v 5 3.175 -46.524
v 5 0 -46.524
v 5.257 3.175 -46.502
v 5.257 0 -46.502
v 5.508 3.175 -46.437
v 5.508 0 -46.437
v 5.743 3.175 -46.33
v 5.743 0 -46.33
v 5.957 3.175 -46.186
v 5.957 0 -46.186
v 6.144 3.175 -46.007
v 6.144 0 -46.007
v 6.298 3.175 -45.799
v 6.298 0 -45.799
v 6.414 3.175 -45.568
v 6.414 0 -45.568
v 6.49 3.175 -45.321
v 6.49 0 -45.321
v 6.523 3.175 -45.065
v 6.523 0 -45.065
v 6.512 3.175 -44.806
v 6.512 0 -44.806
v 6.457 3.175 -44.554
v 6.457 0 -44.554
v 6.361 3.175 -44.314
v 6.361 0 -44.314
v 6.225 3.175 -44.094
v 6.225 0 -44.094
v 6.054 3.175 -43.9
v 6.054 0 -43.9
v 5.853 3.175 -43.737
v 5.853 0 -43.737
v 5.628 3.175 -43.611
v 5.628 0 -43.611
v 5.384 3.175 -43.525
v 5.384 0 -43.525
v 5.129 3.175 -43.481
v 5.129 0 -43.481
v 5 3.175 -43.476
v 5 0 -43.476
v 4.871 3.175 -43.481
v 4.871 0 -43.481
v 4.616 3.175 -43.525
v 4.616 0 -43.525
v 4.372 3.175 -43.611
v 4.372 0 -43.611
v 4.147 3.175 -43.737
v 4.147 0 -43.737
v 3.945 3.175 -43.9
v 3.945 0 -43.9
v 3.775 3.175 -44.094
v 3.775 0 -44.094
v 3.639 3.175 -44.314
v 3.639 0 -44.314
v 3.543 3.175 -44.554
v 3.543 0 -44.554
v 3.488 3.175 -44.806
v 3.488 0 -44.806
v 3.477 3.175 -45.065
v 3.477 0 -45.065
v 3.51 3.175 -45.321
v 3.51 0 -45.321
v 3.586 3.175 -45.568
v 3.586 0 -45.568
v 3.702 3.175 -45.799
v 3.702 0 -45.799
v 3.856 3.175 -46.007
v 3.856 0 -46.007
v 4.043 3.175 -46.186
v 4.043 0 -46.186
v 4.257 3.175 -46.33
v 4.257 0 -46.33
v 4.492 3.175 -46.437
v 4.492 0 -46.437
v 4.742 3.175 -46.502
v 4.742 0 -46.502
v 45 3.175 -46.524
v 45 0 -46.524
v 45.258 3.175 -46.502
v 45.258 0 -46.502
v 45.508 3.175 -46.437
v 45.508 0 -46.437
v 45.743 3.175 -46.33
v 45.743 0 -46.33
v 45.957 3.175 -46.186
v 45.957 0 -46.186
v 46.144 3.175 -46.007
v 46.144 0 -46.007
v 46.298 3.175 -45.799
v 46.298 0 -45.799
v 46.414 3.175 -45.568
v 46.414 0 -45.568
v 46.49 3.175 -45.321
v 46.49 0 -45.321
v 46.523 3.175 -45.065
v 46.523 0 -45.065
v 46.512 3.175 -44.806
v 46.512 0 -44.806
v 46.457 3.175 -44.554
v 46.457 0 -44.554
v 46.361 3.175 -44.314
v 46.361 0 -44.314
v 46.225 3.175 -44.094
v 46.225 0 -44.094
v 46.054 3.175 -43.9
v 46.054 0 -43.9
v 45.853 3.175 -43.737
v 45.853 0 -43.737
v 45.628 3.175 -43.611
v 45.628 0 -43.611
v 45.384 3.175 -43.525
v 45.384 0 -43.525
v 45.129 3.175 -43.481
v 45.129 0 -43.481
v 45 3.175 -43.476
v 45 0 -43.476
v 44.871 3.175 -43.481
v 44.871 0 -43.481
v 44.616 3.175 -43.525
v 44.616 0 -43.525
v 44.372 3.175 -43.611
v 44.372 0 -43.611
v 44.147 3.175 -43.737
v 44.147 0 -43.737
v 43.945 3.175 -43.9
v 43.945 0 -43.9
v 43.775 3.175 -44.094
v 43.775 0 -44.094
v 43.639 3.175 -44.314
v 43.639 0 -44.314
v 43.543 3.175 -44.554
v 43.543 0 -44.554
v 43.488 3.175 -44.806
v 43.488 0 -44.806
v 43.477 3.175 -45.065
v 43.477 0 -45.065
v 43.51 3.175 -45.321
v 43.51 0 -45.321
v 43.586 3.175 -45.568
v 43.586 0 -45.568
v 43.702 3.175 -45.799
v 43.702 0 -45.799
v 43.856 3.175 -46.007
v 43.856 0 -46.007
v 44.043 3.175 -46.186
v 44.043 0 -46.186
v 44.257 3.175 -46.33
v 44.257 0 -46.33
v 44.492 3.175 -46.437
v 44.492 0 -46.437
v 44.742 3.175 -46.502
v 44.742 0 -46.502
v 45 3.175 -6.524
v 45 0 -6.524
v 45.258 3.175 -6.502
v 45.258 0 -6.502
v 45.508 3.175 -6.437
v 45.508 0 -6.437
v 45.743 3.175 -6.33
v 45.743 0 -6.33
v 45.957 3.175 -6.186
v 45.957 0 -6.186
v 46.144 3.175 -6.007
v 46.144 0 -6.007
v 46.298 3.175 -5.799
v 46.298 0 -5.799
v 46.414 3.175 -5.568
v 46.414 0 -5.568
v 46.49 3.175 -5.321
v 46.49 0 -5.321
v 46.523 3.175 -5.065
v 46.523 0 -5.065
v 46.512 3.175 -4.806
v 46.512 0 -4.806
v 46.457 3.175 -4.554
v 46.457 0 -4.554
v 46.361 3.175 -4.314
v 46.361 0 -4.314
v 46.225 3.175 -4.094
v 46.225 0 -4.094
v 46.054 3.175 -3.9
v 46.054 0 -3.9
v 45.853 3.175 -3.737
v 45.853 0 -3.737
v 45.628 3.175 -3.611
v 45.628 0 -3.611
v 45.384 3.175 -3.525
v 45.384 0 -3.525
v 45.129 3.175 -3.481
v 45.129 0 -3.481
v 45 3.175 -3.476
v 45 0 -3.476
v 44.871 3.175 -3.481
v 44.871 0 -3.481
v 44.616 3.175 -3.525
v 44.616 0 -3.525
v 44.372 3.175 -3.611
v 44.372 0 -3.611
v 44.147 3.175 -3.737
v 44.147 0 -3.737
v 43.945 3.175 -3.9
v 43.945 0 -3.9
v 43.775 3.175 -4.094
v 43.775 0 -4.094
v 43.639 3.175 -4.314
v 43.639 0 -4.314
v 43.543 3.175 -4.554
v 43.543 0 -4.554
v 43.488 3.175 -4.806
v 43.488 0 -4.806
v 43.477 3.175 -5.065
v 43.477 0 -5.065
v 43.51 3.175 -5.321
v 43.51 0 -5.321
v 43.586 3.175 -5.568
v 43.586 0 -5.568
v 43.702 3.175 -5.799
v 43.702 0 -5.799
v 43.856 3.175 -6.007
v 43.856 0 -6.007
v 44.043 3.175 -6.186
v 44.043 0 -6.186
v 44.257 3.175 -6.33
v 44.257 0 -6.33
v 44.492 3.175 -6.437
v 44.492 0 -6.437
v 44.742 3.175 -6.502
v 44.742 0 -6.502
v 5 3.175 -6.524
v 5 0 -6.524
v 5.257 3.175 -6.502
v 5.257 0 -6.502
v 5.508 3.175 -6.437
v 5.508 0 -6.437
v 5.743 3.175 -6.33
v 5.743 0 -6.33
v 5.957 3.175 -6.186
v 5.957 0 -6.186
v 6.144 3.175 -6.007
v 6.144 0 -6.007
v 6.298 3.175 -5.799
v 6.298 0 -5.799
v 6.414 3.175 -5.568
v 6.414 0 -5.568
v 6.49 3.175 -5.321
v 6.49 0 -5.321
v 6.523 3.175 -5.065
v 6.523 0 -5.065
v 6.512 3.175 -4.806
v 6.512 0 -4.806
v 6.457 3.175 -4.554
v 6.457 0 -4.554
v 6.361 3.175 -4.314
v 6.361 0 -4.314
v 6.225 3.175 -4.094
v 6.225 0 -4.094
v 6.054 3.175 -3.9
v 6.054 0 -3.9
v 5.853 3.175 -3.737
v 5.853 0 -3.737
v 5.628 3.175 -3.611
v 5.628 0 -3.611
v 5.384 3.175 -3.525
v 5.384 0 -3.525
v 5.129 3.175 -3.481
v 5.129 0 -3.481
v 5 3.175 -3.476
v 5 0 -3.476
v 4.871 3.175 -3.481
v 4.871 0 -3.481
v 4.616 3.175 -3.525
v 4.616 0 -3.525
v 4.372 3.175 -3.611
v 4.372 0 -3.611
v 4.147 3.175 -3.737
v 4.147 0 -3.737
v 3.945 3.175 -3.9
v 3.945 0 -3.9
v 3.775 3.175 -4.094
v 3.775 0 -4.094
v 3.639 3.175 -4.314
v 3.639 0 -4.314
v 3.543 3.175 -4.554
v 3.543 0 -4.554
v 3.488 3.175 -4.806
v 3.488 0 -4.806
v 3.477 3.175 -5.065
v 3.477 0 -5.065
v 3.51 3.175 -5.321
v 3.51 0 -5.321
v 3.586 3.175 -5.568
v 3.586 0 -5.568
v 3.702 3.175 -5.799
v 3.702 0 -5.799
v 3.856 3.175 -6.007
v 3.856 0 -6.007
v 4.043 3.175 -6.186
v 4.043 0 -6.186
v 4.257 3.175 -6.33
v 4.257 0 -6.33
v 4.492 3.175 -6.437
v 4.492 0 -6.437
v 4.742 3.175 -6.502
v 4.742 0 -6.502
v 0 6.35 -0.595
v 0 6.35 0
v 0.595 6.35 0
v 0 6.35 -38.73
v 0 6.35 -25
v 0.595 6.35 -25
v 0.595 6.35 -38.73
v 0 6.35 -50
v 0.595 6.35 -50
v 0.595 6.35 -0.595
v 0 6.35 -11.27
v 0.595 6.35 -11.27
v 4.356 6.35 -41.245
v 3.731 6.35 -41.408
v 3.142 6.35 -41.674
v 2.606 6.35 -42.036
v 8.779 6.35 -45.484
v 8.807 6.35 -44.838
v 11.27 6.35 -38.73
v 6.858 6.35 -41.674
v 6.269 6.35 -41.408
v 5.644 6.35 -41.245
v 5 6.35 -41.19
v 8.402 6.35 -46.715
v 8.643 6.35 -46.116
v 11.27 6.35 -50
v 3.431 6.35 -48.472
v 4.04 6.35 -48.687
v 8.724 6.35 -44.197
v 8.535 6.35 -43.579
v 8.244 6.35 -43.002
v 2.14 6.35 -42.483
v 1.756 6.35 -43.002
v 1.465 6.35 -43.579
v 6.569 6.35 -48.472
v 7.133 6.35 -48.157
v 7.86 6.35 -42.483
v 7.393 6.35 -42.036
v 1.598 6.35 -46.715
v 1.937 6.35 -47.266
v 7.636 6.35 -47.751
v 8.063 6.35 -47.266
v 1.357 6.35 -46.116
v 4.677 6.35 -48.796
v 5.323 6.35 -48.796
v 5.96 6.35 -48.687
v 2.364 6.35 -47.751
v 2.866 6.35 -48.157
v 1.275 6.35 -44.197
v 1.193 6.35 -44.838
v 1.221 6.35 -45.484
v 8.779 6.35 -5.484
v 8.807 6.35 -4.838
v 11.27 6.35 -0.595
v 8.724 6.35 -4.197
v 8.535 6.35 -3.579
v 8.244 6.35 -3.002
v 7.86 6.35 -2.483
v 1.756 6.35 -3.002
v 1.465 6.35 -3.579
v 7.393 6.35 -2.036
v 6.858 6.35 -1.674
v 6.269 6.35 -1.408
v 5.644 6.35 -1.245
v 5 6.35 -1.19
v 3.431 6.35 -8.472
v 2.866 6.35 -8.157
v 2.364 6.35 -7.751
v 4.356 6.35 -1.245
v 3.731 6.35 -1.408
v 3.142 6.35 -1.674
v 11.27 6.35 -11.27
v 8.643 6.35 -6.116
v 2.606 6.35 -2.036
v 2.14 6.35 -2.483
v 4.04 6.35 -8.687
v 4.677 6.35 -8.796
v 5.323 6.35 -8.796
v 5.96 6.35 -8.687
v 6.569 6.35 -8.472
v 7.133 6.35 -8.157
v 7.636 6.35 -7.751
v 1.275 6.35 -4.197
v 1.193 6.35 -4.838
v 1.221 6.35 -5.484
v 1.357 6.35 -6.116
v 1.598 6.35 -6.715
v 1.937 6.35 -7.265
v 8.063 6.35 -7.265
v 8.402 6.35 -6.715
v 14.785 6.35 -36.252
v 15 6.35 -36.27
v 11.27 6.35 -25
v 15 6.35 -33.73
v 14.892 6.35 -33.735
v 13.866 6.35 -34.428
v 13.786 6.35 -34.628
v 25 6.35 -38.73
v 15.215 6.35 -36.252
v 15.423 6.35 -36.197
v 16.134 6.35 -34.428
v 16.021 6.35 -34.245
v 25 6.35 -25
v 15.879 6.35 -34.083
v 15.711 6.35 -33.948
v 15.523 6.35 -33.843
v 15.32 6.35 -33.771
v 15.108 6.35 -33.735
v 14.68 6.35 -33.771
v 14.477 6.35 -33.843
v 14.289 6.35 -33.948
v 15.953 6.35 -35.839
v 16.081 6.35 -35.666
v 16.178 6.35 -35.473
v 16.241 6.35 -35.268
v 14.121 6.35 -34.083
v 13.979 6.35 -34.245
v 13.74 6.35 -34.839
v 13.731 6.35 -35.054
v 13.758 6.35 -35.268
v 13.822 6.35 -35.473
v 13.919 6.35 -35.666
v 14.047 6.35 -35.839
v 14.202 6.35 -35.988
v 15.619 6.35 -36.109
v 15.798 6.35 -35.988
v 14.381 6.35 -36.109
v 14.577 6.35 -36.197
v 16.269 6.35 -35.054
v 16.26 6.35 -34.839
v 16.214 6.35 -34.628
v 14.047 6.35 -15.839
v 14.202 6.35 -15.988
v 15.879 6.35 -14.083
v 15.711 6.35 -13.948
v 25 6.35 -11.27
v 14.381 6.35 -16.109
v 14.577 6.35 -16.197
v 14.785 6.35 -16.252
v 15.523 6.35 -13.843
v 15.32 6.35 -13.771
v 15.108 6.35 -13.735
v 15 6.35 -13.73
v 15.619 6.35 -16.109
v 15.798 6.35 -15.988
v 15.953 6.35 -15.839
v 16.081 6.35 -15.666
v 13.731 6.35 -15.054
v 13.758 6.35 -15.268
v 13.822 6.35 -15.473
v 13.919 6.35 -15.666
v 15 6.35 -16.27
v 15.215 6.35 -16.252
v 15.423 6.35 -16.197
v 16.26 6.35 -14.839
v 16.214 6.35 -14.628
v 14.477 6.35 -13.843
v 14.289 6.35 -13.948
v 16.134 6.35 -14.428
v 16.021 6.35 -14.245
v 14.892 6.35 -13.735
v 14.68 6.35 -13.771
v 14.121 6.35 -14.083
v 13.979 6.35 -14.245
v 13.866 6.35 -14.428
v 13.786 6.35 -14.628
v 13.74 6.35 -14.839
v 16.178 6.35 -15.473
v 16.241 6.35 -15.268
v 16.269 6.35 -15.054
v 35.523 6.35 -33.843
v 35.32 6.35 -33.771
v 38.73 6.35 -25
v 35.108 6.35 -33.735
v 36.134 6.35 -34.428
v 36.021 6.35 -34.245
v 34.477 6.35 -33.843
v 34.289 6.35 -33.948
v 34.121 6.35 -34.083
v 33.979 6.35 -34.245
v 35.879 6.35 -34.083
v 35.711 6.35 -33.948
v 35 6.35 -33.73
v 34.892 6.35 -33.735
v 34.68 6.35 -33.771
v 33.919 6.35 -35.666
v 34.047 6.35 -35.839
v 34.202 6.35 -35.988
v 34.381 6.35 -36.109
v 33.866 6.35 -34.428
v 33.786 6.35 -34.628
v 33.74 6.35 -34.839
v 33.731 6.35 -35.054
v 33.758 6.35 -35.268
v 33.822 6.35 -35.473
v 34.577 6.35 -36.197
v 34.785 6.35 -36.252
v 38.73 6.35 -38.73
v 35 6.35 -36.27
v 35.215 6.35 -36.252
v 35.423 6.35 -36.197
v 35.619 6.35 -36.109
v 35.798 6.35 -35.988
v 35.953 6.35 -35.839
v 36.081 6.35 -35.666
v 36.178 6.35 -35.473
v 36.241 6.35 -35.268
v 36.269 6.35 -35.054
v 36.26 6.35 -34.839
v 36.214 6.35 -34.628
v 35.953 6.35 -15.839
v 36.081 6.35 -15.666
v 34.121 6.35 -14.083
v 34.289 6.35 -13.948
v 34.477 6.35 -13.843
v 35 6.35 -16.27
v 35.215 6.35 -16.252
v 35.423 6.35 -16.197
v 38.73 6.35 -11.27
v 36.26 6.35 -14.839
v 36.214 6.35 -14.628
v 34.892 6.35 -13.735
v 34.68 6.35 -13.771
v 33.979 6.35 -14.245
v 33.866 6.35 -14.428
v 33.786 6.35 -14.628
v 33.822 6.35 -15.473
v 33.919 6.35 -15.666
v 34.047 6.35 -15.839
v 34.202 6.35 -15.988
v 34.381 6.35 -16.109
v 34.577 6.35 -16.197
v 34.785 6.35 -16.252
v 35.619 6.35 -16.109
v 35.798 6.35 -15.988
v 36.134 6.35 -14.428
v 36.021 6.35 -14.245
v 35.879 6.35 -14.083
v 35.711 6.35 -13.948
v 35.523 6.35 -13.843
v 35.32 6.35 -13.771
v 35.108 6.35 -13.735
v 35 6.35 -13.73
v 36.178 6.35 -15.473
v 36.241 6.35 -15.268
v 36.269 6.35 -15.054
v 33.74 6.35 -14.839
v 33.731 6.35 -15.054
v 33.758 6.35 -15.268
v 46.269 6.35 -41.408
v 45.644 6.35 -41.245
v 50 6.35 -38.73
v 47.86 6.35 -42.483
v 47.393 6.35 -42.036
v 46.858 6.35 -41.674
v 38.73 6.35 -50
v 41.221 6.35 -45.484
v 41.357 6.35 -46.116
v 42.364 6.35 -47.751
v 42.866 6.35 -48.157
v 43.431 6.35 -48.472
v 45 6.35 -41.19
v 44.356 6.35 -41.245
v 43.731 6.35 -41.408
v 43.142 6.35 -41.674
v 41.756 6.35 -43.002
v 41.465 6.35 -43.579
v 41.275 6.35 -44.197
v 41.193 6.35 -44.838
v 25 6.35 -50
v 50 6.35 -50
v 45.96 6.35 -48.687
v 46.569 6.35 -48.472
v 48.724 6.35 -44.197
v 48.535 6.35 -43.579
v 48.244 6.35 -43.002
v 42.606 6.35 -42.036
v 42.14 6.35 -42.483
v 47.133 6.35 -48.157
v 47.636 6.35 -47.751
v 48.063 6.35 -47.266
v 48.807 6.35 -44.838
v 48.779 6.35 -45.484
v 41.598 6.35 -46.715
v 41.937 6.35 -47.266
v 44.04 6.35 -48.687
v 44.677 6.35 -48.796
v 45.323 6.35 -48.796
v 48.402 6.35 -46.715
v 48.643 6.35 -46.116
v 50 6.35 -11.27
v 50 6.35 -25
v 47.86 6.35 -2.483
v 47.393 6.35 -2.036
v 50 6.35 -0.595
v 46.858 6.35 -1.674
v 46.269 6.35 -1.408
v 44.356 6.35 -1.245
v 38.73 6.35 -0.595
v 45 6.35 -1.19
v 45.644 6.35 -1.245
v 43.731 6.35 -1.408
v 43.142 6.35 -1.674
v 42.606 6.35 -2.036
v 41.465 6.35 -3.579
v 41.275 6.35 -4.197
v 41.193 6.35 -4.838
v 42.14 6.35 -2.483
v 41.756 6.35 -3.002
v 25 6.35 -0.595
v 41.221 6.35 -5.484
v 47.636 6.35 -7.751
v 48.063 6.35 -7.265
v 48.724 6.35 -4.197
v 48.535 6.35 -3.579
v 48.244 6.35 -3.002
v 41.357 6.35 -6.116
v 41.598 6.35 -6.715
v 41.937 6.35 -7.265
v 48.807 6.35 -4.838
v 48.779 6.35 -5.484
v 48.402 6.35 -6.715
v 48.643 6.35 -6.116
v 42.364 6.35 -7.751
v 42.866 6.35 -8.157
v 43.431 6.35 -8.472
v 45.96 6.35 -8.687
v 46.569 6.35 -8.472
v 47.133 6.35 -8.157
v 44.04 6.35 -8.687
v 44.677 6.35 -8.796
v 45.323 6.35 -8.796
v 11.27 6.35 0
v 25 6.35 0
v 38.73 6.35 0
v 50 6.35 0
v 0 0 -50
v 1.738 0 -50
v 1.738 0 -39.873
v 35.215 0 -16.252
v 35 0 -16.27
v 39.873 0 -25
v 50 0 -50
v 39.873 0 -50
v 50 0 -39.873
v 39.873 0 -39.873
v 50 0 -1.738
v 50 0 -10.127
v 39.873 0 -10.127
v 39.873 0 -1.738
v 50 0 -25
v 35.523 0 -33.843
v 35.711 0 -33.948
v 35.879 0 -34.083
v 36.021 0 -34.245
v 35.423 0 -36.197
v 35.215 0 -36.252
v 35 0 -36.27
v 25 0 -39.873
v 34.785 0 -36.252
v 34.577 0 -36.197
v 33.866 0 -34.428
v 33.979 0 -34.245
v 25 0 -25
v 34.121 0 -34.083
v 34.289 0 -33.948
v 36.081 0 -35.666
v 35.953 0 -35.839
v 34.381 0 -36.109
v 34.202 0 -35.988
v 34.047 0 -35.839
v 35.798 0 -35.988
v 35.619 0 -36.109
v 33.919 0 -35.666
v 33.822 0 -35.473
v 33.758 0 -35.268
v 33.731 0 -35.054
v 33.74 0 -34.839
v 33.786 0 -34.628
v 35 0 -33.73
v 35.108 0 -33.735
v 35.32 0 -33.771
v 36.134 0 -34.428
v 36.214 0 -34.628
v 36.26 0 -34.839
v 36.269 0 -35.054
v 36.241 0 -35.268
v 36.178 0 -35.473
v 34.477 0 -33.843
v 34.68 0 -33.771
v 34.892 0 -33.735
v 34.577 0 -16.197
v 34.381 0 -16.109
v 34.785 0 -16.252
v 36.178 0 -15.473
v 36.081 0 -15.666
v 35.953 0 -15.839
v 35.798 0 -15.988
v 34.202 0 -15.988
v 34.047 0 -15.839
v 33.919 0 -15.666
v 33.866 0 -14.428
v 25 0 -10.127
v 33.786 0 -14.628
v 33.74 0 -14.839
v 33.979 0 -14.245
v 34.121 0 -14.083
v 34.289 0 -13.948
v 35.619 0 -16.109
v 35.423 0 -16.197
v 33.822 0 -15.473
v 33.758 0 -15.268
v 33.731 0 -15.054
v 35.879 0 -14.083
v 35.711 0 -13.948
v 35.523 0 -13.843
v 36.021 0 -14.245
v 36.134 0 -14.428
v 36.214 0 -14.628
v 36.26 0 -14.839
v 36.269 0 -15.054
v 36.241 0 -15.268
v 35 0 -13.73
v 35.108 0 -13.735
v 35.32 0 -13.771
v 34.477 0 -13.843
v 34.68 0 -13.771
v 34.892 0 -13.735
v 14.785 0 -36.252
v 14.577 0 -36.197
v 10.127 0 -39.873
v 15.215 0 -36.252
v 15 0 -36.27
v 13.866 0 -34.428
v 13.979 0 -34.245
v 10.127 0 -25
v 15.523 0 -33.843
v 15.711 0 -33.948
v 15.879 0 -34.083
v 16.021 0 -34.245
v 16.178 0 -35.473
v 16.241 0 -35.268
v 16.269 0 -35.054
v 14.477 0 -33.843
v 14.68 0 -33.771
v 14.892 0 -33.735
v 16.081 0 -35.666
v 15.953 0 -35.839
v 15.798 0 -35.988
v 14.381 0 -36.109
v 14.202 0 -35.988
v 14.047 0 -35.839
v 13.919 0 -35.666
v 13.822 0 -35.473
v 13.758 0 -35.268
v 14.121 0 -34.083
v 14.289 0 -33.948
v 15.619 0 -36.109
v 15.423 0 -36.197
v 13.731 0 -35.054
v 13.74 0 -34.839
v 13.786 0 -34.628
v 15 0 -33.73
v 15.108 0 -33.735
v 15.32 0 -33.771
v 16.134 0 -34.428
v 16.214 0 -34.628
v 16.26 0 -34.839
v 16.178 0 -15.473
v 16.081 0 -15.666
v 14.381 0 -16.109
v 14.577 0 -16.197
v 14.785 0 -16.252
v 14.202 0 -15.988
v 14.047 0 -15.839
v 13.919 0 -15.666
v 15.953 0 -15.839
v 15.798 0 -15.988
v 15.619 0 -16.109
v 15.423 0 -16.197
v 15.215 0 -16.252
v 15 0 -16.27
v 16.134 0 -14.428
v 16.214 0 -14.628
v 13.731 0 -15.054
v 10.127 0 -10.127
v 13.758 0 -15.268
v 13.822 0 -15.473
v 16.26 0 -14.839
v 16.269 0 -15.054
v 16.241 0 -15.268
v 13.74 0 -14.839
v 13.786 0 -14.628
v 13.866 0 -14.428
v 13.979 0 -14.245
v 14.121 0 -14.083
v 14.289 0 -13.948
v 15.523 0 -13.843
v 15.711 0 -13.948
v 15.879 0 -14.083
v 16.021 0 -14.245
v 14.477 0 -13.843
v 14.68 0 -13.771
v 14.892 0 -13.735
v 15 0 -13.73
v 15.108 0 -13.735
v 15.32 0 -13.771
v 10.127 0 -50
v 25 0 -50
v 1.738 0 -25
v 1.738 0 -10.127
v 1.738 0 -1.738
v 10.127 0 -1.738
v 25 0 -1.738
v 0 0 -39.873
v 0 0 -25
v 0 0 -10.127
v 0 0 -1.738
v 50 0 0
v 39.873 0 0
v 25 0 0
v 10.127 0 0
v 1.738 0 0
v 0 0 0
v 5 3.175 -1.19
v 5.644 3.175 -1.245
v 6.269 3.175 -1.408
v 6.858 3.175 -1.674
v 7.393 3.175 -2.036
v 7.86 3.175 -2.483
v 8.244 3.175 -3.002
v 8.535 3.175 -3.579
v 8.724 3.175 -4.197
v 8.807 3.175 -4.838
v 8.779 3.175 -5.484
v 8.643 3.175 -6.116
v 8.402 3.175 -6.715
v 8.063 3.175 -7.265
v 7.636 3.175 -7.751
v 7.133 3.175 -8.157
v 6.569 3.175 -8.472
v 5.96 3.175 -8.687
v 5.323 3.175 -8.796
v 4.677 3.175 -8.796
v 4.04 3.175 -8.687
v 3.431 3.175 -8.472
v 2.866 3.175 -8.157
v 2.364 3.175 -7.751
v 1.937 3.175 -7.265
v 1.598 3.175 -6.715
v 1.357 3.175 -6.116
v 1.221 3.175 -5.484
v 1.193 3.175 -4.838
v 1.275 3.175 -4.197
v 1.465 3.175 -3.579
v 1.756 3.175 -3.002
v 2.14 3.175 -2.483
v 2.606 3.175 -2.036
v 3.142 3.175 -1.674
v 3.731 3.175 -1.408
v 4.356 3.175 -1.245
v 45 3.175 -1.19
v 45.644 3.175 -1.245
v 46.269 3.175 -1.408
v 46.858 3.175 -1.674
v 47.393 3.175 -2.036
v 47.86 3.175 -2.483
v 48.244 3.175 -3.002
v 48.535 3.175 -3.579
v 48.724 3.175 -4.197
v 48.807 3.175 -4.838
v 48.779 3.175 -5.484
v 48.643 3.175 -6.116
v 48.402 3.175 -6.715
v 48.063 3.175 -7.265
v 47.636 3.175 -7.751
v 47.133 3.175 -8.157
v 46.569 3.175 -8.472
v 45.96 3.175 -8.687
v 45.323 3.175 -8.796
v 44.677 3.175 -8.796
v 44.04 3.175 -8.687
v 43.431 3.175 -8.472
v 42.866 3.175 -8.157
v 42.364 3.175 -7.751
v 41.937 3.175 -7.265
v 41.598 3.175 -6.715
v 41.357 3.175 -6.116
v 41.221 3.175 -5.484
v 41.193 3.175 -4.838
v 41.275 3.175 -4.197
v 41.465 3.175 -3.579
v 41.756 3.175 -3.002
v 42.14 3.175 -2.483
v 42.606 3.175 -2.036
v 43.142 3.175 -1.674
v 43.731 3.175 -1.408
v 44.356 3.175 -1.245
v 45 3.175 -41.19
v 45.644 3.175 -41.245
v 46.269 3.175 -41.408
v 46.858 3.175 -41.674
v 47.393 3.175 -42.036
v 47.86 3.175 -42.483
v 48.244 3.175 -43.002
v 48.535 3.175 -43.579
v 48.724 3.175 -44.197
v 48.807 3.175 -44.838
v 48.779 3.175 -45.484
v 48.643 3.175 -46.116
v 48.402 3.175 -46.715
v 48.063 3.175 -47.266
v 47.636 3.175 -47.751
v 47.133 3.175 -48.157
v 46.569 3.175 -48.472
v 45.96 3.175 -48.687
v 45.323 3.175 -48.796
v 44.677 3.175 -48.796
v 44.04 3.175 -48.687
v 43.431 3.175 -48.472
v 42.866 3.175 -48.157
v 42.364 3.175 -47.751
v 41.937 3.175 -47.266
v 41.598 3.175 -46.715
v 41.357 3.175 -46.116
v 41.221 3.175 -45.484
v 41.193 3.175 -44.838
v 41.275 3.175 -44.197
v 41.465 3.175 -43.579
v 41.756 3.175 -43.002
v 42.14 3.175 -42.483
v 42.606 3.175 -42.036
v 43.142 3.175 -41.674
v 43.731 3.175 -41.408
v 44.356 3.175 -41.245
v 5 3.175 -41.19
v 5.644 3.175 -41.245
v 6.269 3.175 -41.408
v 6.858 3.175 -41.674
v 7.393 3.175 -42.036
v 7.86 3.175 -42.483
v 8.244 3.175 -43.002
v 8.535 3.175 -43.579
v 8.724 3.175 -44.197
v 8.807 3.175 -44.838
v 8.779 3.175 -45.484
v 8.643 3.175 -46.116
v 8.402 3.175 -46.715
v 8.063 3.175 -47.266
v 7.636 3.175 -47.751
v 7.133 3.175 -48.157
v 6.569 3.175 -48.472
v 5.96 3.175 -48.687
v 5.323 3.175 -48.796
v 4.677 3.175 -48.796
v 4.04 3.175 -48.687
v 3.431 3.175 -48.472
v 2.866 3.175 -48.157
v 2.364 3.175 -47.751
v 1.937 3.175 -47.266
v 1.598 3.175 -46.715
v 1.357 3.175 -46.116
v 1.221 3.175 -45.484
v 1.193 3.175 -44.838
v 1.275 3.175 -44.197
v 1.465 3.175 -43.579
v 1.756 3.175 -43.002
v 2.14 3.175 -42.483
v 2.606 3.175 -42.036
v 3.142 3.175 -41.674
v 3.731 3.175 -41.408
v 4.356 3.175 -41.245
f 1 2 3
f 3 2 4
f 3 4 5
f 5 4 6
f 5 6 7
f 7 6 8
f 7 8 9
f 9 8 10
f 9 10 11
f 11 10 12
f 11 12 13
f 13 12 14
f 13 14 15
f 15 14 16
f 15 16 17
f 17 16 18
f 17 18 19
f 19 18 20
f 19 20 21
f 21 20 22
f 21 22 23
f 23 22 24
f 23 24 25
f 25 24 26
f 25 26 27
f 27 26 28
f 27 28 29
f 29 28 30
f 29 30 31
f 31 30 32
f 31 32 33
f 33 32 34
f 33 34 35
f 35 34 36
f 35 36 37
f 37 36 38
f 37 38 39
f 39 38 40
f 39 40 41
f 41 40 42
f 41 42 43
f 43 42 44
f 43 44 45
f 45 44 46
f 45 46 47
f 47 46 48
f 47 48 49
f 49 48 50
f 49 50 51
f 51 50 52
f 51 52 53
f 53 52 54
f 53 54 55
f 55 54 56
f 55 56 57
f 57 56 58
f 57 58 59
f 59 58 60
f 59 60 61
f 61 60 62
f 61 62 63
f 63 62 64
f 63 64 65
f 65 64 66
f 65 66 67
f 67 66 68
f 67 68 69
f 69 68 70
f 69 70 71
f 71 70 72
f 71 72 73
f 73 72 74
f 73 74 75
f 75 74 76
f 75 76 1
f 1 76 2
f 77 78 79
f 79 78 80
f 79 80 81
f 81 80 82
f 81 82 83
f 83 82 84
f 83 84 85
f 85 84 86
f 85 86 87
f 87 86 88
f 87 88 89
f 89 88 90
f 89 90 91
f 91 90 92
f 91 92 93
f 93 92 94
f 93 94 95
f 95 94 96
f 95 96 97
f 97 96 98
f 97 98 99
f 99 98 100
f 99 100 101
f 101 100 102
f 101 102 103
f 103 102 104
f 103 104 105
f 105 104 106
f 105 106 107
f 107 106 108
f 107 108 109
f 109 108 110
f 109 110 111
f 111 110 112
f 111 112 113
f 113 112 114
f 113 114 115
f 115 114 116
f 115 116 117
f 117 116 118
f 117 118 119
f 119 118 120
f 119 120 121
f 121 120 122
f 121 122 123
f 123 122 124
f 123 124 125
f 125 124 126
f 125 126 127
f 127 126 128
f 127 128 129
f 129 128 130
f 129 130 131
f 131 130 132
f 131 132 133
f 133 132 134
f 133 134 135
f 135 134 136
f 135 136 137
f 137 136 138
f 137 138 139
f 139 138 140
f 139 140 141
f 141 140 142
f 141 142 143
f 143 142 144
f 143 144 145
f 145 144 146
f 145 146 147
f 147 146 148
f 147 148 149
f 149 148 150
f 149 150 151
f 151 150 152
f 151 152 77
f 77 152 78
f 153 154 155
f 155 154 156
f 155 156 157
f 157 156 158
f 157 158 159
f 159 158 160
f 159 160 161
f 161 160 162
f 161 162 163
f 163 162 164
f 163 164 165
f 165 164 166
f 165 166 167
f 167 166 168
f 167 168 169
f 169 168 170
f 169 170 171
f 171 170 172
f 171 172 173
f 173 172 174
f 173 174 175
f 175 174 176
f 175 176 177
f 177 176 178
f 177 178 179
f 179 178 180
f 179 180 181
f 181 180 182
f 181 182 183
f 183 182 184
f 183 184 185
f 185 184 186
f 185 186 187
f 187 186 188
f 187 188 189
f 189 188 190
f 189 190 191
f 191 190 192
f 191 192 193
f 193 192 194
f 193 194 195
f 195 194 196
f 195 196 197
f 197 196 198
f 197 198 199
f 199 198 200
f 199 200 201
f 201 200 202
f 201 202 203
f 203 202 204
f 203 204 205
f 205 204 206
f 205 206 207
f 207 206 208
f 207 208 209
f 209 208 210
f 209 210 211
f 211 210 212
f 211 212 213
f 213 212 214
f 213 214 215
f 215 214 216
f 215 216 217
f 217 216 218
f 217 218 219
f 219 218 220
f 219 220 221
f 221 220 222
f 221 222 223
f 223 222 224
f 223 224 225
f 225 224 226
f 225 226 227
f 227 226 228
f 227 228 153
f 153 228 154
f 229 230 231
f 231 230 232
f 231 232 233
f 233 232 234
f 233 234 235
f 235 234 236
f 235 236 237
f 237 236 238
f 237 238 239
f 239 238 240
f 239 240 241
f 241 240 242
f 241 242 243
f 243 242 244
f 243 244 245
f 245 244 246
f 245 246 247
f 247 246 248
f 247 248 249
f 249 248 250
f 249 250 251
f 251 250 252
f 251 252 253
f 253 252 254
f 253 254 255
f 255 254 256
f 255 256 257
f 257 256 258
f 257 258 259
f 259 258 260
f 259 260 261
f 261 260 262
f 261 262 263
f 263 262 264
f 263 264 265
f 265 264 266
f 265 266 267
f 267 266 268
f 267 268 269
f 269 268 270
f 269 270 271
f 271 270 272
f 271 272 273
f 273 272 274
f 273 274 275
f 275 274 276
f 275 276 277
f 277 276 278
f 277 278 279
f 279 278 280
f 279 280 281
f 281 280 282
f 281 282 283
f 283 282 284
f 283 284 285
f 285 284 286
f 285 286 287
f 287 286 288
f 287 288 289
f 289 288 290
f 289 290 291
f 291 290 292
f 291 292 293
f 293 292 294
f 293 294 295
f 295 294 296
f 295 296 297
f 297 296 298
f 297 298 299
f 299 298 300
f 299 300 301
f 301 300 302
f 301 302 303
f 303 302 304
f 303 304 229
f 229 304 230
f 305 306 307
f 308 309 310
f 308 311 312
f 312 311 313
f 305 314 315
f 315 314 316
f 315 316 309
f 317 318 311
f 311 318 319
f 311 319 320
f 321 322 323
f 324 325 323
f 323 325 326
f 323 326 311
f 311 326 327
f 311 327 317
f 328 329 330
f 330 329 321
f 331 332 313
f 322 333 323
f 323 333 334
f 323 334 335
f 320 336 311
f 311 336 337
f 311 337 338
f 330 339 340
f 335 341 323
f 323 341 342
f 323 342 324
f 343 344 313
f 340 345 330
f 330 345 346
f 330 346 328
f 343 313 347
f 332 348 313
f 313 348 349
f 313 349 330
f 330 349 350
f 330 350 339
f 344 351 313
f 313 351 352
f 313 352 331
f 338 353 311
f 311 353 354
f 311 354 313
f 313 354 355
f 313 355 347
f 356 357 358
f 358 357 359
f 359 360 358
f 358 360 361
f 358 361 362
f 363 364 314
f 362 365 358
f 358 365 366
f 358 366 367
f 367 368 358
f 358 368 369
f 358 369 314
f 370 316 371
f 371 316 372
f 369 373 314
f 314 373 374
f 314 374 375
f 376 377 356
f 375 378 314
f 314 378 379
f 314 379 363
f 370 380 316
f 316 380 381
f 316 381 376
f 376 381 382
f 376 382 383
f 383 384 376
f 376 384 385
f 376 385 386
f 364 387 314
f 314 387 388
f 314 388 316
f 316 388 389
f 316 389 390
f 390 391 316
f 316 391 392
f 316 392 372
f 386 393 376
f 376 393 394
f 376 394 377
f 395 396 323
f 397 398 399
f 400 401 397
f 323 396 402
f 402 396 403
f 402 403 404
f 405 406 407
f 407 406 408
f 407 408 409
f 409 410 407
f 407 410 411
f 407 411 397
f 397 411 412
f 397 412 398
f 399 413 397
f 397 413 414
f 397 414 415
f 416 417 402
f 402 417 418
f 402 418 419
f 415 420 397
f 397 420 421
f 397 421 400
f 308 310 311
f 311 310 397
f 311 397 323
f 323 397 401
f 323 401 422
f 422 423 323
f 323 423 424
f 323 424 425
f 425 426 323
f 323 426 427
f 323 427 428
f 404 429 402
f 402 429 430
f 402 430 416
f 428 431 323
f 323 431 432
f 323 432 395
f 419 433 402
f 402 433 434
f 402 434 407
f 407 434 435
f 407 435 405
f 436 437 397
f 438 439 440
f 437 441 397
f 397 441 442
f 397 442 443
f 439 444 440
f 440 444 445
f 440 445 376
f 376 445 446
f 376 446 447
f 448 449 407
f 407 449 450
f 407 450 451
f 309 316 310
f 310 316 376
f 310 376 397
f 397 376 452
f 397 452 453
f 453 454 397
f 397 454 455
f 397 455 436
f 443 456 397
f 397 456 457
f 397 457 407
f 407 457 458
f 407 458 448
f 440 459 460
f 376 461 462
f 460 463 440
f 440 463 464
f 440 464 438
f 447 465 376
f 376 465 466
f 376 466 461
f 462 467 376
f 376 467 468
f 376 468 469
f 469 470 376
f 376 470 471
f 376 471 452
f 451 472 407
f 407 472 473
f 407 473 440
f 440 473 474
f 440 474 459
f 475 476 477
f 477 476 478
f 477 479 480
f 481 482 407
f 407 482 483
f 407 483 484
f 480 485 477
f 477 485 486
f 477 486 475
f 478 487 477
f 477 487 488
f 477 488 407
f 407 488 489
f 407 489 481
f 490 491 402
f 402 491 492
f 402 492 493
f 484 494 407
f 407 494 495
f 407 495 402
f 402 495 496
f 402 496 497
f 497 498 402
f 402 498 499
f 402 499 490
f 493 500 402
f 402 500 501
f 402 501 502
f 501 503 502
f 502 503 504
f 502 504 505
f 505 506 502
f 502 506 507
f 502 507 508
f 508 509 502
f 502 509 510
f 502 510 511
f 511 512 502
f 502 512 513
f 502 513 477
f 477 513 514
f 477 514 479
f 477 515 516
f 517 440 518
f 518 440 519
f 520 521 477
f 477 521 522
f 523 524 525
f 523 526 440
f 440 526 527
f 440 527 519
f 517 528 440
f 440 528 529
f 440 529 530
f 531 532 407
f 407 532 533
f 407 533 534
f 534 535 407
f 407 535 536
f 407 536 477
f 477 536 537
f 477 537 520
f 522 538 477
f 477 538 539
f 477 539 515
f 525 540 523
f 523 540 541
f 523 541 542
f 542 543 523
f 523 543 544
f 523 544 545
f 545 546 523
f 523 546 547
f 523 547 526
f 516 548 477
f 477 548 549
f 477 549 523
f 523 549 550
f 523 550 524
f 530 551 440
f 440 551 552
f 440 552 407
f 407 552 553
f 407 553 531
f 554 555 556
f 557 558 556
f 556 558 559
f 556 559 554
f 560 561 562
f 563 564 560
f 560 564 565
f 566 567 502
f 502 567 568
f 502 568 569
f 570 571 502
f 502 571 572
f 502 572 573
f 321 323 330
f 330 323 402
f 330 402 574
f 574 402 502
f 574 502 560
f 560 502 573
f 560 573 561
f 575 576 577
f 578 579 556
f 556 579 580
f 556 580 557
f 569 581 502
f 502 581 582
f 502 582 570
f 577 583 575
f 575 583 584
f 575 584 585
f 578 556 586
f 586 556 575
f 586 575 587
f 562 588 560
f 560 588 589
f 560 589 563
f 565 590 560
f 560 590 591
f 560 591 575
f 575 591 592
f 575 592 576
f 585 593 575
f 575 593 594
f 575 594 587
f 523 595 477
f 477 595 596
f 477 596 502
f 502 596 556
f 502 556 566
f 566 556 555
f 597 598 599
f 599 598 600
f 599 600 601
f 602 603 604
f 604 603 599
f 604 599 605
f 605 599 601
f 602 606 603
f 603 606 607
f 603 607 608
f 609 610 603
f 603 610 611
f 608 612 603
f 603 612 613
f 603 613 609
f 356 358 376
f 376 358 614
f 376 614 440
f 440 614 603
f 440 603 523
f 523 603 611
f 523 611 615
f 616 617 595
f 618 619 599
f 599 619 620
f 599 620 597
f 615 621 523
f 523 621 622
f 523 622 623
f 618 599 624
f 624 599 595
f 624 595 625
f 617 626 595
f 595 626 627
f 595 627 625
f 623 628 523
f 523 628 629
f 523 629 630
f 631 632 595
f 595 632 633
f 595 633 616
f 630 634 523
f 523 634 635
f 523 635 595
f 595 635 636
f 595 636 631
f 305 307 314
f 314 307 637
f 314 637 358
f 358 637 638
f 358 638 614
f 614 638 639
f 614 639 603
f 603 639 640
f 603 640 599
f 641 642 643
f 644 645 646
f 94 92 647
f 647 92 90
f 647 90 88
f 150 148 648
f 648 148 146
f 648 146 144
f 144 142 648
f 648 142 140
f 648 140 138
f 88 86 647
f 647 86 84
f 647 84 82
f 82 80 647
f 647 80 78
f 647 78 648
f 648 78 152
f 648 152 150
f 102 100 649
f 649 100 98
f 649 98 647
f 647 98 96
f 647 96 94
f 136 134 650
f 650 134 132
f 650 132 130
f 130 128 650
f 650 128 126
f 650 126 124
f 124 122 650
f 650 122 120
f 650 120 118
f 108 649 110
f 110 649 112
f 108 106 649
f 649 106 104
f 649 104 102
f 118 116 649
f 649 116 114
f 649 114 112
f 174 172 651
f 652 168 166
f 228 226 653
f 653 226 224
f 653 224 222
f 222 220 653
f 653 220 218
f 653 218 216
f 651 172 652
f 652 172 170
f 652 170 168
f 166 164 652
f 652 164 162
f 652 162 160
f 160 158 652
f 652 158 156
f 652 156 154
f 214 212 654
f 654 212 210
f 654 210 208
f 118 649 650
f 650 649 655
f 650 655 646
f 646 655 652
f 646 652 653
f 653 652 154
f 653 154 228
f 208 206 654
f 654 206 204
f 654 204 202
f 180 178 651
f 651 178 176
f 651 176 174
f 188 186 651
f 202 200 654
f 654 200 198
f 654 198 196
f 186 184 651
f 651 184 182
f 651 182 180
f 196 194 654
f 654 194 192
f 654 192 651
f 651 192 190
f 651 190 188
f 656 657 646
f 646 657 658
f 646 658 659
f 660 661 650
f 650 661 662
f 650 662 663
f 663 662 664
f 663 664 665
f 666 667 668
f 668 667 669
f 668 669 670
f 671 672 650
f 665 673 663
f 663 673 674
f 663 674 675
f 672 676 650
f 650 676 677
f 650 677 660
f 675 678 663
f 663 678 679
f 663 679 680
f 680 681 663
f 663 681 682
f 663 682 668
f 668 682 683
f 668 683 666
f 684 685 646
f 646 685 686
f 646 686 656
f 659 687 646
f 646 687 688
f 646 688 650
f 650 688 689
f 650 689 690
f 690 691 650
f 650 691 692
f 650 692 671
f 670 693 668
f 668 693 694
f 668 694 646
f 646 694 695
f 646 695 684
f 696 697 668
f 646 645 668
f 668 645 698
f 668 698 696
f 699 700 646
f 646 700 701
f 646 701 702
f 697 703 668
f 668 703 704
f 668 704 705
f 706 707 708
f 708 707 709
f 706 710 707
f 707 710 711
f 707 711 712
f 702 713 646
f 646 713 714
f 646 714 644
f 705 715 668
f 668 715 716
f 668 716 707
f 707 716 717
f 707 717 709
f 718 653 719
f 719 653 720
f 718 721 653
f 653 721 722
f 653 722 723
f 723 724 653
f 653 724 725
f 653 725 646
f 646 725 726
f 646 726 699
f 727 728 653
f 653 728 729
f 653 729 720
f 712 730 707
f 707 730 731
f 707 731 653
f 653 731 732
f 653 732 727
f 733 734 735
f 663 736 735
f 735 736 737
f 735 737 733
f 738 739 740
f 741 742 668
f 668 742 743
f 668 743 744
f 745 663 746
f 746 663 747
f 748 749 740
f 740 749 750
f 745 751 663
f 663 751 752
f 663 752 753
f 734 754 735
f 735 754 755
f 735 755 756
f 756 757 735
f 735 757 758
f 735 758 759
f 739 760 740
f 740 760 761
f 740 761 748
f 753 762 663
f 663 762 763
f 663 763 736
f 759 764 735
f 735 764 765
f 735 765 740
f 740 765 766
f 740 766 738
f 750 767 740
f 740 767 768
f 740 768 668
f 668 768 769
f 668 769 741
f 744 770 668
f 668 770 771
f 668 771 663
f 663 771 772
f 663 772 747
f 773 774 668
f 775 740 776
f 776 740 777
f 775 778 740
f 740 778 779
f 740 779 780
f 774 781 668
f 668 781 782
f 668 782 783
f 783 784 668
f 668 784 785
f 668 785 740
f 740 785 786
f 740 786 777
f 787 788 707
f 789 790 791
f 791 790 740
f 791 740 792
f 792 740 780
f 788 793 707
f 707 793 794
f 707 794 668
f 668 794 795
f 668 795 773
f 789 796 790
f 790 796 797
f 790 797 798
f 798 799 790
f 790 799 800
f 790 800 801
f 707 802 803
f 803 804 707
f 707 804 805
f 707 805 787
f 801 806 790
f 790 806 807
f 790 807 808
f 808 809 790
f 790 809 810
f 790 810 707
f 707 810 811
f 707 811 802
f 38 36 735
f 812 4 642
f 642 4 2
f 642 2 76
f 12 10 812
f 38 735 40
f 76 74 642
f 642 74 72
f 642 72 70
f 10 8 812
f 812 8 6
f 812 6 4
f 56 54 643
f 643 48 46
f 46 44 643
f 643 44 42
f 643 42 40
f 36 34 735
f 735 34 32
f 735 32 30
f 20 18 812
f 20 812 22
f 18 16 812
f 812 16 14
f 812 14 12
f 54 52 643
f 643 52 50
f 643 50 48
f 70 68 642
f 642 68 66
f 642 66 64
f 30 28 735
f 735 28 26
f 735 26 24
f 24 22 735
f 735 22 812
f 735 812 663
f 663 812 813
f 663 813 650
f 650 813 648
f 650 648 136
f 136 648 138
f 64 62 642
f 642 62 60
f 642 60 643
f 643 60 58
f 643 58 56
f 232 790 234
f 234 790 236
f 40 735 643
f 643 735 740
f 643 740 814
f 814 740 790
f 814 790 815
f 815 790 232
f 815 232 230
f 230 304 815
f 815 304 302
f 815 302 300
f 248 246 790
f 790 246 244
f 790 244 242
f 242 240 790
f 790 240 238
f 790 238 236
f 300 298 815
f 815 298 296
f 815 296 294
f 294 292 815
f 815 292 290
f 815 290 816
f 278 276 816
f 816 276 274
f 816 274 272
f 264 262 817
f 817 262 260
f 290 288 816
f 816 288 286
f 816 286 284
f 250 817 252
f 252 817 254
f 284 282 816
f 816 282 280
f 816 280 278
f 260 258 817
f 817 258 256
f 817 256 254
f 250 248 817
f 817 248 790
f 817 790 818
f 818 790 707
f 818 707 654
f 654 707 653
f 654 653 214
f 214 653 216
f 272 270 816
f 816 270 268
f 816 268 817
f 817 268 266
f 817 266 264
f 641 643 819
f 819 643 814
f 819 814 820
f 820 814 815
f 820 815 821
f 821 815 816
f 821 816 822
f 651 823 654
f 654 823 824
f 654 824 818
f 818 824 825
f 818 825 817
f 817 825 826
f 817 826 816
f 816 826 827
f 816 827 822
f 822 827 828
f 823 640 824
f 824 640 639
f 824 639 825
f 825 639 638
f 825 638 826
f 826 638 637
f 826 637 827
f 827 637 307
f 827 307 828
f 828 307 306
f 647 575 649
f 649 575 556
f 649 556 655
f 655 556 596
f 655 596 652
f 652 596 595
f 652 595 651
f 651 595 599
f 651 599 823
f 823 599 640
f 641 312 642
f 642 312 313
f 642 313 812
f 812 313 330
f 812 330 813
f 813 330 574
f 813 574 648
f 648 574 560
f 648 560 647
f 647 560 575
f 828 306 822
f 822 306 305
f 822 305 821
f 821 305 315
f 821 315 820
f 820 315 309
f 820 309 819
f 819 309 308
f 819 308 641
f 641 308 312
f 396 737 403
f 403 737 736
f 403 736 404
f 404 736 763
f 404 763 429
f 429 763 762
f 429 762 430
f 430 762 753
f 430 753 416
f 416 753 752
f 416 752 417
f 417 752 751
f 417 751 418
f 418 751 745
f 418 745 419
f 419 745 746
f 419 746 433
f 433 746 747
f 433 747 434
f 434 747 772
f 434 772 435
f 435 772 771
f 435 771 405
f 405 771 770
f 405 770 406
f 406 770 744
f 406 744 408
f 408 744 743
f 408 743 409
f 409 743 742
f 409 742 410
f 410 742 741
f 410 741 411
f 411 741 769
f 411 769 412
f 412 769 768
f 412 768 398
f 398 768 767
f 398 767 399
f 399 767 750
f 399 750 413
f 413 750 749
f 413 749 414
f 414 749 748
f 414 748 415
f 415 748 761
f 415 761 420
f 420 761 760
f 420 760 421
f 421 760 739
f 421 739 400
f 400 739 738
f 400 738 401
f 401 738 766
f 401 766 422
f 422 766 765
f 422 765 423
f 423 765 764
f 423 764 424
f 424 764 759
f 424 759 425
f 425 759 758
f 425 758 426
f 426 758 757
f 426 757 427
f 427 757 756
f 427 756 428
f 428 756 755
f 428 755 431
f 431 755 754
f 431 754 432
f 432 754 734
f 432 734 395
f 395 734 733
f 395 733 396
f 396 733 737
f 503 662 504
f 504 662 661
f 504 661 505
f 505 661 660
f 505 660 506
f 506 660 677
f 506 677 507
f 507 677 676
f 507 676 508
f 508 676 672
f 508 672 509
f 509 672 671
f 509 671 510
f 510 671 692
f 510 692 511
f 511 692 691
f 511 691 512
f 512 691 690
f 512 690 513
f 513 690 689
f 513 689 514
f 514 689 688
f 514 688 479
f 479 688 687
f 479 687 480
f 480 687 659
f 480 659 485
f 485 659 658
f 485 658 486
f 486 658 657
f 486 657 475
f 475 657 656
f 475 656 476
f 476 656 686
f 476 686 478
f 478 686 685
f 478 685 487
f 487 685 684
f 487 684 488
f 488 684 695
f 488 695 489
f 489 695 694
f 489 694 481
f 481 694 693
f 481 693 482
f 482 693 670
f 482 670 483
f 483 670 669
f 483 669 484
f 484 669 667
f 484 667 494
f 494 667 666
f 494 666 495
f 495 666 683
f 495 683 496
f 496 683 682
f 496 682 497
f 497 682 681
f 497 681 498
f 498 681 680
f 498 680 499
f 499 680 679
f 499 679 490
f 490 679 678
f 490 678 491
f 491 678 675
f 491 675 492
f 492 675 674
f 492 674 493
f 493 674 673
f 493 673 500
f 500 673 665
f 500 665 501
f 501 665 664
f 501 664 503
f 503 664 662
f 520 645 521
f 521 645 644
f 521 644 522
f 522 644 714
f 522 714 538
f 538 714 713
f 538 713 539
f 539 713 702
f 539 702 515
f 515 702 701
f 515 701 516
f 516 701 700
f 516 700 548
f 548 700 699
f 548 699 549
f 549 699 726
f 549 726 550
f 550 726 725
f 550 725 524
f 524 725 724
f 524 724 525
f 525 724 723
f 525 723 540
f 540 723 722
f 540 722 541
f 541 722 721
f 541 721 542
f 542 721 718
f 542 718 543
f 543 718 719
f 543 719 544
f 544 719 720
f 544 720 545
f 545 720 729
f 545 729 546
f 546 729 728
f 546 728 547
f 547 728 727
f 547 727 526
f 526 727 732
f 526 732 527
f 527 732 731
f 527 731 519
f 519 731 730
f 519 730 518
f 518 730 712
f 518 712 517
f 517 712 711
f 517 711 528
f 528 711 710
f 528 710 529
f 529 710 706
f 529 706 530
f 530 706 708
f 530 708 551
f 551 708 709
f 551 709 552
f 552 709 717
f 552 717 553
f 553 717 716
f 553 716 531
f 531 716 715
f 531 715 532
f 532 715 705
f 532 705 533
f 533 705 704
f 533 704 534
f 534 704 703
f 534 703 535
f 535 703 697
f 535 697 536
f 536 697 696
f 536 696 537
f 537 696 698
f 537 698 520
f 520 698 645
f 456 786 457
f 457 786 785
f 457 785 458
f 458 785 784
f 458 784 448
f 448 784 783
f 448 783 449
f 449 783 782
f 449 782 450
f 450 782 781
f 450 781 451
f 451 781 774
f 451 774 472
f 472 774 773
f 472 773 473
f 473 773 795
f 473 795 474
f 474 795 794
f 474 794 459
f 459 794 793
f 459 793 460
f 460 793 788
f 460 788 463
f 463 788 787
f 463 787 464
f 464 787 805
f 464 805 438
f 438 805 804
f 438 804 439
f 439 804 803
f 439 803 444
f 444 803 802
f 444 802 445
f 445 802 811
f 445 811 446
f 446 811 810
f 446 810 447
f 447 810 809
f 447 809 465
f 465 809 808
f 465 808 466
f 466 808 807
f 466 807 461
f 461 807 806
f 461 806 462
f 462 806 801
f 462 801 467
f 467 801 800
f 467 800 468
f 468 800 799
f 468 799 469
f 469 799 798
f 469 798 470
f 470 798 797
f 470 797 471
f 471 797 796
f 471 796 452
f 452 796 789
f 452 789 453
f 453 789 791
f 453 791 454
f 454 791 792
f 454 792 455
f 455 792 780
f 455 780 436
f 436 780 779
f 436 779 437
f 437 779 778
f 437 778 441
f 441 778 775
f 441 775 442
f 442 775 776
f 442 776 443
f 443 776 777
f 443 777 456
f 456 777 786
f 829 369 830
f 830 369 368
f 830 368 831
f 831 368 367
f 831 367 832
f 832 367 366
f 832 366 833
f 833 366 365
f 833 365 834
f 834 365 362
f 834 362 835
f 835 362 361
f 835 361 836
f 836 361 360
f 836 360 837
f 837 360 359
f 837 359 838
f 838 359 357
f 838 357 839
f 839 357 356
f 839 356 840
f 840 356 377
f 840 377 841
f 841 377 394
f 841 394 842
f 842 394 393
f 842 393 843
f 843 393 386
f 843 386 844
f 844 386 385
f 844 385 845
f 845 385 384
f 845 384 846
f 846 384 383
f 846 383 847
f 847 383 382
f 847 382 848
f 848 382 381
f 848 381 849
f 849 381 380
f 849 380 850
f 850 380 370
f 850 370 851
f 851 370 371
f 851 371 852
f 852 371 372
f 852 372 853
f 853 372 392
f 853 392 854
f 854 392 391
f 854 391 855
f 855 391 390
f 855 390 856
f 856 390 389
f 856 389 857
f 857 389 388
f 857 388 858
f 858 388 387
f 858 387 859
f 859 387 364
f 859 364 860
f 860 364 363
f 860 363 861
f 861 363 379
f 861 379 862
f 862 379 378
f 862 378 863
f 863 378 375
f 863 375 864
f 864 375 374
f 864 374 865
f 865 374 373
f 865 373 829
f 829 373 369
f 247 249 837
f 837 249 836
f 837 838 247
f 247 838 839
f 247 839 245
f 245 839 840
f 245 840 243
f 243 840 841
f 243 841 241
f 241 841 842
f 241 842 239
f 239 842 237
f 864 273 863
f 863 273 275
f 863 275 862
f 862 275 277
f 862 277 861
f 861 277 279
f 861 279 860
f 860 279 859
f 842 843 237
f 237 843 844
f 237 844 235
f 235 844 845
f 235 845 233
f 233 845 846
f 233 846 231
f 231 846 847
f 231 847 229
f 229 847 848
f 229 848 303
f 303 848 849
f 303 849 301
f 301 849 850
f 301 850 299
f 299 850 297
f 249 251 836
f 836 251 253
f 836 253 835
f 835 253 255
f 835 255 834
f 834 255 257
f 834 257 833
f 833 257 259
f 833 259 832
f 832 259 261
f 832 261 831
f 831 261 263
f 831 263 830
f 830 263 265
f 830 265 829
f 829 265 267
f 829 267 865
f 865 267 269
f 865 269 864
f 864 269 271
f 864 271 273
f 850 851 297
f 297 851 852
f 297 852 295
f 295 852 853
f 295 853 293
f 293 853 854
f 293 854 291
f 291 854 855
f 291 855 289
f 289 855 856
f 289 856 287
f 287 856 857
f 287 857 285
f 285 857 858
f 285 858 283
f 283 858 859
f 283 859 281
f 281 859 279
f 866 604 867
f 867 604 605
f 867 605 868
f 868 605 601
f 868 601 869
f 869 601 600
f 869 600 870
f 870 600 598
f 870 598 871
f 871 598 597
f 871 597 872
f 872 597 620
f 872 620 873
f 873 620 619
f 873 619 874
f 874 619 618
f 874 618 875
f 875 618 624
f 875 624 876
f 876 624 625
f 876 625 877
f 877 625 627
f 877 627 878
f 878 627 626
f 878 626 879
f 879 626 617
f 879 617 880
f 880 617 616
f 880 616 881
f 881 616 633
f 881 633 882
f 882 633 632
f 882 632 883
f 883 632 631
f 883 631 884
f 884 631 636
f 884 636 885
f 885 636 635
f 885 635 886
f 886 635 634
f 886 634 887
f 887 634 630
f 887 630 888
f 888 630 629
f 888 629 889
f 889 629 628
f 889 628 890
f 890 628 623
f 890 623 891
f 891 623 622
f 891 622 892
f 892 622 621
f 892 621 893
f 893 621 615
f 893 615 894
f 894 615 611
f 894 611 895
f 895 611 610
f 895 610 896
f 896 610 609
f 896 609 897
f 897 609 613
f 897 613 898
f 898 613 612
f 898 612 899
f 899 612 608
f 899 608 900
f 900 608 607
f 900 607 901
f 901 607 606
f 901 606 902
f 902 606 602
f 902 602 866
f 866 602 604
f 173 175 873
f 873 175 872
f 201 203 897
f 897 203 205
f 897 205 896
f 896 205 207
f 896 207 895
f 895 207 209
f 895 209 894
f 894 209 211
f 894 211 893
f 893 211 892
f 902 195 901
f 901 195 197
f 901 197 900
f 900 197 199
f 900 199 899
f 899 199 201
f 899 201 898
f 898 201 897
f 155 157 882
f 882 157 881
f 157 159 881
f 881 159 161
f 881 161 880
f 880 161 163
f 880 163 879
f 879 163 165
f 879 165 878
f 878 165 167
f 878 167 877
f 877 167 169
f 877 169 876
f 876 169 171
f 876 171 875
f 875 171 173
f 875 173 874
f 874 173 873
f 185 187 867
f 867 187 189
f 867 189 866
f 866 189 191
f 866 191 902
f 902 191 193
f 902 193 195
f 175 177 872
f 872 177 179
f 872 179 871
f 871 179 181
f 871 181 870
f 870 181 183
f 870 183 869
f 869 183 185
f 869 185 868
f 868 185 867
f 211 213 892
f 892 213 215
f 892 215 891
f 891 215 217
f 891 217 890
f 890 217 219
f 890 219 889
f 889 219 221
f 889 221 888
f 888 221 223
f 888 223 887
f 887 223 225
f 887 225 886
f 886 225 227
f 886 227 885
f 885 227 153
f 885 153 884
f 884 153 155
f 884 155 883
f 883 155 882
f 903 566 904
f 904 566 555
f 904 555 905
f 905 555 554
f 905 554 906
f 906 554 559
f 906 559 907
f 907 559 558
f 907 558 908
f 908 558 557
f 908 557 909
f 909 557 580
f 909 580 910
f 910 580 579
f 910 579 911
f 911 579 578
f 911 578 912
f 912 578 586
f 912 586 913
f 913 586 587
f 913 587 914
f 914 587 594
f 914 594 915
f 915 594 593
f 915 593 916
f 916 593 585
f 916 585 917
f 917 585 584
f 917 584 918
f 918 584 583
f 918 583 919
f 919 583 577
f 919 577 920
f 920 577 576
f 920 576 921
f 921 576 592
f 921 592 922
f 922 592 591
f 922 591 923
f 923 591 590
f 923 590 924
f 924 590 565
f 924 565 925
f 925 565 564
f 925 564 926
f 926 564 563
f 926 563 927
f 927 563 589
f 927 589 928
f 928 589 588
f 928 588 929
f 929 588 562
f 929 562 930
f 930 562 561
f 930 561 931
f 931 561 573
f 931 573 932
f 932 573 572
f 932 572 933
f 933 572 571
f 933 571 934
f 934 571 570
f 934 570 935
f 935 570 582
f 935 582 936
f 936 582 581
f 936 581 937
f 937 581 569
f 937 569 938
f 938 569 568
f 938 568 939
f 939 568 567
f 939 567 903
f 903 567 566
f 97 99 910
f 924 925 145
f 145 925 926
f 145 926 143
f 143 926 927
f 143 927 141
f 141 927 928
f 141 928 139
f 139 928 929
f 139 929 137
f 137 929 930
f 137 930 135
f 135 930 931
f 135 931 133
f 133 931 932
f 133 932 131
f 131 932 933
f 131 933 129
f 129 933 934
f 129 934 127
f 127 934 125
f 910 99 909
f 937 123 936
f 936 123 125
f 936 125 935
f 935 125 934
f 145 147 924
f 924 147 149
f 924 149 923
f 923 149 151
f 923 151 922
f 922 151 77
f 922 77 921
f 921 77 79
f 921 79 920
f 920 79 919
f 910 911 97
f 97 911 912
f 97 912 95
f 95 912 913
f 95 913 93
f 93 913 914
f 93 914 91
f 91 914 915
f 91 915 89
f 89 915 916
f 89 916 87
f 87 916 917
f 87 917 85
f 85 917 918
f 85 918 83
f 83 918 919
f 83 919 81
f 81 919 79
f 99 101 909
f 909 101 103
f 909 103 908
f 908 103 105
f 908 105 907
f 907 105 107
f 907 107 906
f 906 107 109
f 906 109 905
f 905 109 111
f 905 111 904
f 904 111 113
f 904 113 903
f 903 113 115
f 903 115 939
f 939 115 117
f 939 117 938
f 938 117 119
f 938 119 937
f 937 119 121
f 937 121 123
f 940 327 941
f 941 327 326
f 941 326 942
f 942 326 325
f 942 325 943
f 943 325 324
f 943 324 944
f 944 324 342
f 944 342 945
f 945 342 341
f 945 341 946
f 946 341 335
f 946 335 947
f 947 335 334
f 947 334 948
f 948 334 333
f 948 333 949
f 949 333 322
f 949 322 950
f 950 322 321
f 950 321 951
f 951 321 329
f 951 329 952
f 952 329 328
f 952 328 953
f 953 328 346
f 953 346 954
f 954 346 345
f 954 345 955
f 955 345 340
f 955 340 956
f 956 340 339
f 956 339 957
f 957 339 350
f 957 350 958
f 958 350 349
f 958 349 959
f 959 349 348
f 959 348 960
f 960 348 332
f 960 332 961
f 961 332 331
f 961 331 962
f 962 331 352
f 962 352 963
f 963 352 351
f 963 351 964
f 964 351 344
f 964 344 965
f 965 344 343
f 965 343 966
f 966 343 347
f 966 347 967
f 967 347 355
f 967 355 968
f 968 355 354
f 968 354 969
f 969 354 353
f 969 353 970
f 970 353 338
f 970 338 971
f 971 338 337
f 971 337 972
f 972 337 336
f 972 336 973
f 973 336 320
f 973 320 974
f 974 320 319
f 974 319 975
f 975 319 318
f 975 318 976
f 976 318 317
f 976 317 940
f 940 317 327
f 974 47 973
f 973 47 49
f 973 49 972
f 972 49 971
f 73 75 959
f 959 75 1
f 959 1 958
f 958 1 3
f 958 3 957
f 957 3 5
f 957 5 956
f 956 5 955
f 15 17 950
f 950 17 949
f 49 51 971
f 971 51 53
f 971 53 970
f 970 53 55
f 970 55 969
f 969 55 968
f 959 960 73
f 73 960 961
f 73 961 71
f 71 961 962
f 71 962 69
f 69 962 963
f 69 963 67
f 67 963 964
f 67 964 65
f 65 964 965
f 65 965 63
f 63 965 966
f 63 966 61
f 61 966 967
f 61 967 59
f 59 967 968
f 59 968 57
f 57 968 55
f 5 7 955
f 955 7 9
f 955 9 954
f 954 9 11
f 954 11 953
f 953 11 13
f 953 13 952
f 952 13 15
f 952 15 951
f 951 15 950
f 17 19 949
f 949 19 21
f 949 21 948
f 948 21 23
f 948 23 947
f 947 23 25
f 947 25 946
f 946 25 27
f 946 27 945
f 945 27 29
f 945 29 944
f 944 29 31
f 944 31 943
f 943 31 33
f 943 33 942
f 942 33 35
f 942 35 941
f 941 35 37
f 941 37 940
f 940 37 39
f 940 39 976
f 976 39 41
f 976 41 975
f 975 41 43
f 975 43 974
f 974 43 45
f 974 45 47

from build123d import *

# Parameters (mm, degrees)
SKETCH1_W           = 49.9999
SKETCH1_H           = 49.9999
SKETCH1_R           = 1.524
SKETCH1_R_2         = 1.27
BOSS_EXTRUDE1_DEPTH = 6.35
SKETCH2_R           = 3.81
CUT_EXTRUDE1_DEPTH  = 3.175


with BuildPart() as part:
    # Sketch1 → Boss-Extrude1 (new body)
    with BuildSketch(Plane(origin=(0, 0, 0), x_dir=(1, 0, 0), z_dir=(0, 1, 0))):
        with Locations((24.99995, 24.99995)):
            Rectangle(SKETCH1_W, SKETCH1_H)
        with Locations((4.9999392, 44.9999608)):
            Circle(SKETCH1_R, mode=Mode.SUBTRACT)
        with Locations((44.9999608, 44.9999608)):
            Circle(SKETCH1_R, mode=Mode.SUBTRACT)
        with Locations((44.9999608, 4.9999392)):
            Circle(SKETCH1_R, mode=Mode.SUBTRACT)
        with Locations((4.9999392, 4.9999392)):
            Circle(SKETCH1_R, mode=Mode.SUBTRACT)
        with Locations((14.9999446, 34.9999554)):
            Circle(SKETCH1_R_2, mode=Mode.SUBTRACT)
        with Locations((34.9999554, 34.9999554)):
            Circle(SKETCH1_R_2, mode=Mode.SUBTRACT)
        with Locations((34.9999554, 14.9999446)):
            Circle(SKETCH1_R_2, mode=Mode.SUBTRACT)
        with Locations((14.9999446, 14.9999446)):
            Circle(SKETCH1_R_2, mode=Mode.SUBTRACT)
    extrude(amount=BOSS_EXTRUDE1_DEPTH)

    # Sketch2 → Cut-Extrude1 (cut)
    with BuildSketch(Plane(origin=(0, 6.35, 0), x_dir=(1, 0, 0), z_dir=(0, 1, 0))):
        with Locations((4.9999392, 44.9999608)):
            Circle(SKETCH2_R)
        with Locations((44.9999608, 44.9999608)):
            Circle(SKETCH2_R)
        with Locations((4.9999392, 4.9999392)):
            Circle(SKETCH2_R)
        with Locations((44.9999608, 4.9999392)):
            Circle(SKETCH2_R)
    extrude(amount=-CUT_EXTRUDE1_DEPTH, mode=Mode.SUBTRACT)


solid = part.part
